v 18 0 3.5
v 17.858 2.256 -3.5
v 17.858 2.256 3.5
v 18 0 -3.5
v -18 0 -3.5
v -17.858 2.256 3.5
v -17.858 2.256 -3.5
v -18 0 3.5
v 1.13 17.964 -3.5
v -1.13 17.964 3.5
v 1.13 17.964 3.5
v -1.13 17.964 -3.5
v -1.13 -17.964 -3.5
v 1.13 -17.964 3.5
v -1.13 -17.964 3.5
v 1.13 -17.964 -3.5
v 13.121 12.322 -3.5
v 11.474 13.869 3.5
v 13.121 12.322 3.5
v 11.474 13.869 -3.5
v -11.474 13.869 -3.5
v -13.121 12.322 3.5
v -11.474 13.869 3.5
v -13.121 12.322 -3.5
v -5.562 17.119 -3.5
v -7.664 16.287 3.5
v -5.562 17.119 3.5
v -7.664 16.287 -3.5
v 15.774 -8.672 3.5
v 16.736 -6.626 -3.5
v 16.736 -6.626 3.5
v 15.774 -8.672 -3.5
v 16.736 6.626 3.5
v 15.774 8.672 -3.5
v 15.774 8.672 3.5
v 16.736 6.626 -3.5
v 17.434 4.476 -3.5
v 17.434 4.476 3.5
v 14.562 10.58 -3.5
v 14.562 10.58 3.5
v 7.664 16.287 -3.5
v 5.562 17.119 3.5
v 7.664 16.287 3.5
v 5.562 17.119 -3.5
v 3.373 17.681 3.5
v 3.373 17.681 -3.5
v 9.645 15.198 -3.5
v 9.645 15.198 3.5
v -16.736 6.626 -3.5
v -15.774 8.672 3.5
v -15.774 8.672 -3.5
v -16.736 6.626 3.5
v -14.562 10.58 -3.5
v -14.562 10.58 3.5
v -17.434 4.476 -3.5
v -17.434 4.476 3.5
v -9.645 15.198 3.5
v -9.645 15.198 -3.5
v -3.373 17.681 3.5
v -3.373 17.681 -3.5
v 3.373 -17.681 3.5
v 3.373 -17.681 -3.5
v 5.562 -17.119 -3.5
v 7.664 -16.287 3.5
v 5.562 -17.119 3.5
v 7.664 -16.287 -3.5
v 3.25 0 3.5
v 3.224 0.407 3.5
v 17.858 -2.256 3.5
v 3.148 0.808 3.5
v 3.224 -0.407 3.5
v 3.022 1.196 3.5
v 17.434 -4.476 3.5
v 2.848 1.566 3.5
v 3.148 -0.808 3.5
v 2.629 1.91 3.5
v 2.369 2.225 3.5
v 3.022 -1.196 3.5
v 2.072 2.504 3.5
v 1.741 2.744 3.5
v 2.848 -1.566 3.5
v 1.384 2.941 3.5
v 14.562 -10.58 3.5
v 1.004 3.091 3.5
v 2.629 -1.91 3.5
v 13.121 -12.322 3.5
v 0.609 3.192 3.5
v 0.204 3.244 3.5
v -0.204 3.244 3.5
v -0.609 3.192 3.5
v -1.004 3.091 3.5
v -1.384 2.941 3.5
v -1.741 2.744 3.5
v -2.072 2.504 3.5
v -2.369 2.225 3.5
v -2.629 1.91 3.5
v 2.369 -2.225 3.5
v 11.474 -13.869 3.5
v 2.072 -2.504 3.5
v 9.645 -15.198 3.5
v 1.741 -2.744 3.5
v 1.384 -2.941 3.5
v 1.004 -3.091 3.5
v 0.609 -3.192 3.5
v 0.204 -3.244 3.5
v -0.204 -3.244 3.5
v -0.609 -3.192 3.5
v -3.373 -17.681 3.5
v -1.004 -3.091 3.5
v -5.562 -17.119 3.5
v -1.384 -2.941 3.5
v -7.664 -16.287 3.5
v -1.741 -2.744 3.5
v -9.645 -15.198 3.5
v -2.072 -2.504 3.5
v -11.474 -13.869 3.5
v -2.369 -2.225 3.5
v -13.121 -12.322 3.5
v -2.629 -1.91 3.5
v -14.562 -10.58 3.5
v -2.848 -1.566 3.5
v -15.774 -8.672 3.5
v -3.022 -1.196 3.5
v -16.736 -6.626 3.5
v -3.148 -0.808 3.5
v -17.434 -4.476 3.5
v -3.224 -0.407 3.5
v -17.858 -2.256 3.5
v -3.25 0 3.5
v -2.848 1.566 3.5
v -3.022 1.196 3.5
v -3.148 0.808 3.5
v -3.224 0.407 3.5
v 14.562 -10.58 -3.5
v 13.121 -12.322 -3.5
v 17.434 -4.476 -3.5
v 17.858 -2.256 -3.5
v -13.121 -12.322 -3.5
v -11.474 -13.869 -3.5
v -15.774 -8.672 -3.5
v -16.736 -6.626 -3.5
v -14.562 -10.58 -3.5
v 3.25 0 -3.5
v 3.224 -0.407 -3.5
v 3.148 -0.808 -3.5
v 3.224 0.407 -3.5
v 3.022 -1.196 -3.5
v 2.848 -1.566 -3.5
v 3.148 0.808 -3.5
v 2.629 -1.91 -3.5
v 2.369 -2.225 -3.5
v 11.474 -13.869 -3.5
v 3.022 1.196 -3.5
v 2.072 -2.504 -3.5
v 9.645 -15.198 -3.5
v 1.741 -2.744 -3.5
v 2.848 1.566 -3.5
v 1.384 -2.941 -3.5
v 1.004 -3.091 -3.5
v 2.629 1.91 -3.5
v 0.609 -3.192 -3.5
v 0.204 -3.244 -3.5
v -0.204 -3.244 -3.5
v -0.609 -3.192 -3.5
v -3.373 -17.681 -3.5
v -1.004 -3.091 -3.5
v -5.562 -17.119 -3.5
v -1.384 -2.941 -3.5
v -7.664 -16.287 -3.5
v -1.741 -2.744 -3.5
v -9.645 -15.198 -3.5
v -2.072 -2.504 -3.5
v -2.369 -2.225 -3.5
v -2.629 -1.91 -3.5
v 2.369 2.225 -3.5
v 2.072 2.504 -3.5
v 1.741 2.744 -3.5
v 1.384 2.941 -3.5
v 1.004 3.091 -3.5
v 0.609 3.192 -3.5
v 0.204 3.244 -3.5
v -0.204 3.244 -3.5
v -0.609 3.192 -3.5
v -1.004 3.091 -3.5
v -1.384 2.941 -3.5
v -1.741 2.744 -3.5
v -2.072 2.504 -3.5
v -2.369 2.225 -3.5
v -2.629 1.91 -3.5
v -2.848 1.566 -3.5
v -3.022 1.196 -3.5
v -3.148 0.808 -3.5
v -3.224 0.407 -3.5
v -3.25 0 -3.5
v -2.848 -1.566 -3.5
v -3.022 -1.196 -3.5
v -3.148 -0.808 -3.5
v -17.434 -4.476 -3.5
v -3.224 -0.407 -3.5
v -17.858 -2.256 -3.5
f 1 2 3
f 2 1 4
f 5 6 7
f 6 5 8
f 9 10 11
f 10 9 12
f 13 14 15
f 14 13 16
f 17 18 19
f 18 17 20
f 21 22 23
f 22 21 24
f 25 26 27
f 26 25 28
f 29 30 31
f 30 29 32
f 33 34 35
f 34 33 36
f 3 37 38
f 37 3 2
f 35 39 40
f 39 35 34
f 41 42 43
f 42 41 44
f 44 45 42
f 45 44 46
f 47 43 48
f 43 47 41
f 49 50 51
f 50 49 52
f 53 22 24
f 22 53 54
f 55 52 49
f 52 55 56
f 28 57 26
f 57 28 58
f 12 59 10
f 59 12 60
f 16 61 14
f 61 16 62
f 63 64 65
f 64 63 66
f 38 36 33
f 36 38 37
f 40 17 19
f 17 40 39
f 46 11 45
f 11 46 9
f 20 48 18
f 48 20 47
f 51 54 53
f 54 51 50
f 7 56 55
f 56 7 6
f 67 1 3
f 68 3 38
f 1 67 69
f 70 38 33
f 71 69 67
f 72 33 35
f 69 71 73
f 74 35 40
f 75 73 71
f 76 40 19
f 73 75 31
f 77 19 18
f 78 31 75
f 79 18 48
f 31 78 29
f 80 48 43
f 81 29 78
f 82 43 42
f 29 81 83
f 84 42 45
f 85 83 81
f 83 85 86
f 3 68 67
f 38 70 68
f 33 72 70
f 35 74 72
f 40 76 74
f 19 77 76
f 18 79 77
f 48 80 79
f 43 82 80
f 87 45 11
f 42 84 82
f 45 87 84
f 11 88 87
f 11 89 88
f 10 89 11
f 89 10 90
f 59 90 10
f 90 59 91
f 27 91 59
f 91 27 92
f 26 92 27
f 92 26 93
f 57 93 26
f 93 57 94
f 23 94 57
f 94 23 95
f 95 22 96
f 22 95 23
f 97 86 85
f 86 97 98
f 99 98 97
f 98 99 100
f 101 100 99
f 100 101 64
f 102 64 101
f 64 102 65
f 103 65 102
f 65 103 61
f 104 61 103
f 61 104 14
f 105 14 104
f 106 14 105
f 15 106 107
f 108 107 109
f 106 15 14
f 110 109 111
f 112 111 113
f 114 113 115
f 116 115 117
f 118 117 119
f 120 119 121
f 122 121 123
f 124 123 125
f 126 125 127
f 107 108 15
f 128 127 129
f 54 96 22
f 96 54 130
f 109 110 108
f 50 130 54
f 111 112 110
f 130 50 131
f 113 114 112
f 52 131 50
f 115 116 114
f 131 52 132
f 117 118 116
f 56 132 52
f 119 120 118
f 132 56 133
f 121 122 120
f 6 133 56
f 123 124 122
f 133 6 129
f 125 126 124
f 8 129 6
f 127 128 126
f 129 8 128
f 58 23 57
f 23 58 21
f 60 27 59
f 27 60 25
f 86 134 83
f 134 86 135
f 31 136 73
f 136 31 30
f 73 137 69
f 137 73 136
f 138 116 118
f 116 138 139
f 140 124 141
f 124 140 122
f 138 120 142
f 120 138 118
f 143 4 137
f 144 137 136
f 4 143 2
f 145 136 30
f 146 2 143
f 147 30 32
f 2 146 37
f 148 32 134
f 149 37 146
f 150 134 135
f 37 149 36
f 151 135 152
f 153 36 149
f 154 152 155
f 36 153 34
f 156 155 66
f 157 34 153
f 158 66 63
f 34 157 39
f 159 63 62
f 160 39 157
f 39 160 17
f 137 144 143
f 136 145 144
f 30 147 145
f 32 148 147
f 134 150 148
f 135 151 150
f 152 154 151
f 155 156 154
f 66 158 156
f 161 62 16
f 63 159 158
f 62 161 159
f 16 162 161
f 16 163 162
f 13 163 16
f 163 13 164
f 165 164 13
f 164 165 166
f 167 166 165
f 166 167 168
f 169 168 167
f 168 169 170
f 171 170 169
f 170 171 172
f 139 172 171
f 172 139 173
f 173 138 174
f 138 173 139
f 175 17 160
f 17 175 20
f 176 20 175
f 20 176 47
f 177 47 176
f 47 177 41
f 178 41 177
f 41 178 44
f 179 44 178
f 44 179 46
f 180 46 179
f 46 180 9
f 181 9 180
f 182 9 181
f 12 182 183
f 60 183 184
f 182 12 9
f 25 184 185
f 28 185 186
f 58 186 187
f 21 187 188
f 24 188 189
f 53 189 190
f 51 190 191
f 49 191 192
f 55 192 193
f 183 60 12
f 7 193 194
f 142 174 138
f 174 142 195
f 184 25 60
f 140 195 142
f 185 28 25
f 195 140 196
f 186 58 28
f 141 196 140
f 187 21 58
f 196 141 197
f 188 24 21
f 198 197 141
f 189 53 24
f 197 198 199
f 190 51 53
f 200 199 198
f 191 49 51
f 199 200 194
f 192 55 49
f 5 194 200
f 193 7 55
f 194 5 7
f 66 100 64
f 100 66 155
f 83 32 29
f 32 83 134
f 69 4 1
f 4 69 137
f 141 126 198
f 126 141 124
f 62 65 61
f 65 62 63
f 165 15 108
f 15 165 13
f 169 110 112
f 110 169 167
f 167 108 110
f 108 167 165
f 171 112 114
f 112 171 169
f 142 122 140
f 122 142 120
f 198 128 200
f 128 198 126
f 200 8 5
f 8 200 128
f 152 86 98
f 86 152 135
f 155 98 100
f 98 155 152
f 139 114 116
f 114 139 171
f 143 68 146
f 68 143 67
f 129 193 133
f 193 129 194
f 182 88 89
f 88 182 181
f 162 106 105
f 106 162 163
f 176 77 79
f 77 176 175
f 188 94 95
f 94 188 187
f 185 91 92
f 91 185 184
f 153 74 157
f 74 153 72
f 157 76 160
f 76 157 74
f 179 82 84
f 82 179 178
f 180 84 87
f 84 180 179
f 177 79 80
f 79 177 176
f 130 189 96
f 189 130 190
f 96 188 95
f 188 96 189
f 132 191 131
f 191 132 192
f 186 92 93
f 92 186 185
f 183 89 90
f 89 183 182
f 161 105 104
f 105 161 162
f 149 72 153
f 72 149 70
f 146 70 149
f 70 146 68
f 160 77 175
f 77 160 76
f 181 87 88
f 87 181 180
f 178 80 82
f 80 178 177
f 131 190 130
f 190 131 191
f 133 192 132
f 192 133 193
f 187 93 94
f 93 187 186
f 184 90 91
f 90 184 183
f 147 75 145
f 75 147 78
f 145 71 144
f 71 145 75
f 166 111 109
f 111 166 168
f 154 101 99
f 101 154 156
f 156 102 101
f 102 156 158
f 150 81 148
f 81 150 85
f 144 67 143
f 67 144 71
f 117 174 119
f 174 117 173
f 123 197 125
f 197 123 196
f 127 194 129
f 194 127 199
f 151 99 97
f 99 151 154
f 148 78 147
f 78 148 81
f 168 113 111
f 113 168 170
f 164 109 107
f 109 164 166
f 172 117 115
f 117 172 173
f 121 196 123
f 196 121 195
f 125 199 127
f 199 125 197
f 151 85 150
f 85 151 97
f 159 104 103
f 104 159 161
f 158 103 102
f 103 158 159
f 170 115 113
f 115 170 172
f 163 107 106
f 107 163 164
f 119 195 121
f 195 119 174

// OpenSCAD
$fn = 50;


difference() {
	union() {
		translate(v = [0, 0, -3.5000000000]) {
			cylinder(h = 7, r = 18.0000000000);
		}
	}
	union() {
		translate(v = [0, 0, -100.0000000000]) {
			cylinder(h = 200, r = 3.2500000000);
		}
	}
}
